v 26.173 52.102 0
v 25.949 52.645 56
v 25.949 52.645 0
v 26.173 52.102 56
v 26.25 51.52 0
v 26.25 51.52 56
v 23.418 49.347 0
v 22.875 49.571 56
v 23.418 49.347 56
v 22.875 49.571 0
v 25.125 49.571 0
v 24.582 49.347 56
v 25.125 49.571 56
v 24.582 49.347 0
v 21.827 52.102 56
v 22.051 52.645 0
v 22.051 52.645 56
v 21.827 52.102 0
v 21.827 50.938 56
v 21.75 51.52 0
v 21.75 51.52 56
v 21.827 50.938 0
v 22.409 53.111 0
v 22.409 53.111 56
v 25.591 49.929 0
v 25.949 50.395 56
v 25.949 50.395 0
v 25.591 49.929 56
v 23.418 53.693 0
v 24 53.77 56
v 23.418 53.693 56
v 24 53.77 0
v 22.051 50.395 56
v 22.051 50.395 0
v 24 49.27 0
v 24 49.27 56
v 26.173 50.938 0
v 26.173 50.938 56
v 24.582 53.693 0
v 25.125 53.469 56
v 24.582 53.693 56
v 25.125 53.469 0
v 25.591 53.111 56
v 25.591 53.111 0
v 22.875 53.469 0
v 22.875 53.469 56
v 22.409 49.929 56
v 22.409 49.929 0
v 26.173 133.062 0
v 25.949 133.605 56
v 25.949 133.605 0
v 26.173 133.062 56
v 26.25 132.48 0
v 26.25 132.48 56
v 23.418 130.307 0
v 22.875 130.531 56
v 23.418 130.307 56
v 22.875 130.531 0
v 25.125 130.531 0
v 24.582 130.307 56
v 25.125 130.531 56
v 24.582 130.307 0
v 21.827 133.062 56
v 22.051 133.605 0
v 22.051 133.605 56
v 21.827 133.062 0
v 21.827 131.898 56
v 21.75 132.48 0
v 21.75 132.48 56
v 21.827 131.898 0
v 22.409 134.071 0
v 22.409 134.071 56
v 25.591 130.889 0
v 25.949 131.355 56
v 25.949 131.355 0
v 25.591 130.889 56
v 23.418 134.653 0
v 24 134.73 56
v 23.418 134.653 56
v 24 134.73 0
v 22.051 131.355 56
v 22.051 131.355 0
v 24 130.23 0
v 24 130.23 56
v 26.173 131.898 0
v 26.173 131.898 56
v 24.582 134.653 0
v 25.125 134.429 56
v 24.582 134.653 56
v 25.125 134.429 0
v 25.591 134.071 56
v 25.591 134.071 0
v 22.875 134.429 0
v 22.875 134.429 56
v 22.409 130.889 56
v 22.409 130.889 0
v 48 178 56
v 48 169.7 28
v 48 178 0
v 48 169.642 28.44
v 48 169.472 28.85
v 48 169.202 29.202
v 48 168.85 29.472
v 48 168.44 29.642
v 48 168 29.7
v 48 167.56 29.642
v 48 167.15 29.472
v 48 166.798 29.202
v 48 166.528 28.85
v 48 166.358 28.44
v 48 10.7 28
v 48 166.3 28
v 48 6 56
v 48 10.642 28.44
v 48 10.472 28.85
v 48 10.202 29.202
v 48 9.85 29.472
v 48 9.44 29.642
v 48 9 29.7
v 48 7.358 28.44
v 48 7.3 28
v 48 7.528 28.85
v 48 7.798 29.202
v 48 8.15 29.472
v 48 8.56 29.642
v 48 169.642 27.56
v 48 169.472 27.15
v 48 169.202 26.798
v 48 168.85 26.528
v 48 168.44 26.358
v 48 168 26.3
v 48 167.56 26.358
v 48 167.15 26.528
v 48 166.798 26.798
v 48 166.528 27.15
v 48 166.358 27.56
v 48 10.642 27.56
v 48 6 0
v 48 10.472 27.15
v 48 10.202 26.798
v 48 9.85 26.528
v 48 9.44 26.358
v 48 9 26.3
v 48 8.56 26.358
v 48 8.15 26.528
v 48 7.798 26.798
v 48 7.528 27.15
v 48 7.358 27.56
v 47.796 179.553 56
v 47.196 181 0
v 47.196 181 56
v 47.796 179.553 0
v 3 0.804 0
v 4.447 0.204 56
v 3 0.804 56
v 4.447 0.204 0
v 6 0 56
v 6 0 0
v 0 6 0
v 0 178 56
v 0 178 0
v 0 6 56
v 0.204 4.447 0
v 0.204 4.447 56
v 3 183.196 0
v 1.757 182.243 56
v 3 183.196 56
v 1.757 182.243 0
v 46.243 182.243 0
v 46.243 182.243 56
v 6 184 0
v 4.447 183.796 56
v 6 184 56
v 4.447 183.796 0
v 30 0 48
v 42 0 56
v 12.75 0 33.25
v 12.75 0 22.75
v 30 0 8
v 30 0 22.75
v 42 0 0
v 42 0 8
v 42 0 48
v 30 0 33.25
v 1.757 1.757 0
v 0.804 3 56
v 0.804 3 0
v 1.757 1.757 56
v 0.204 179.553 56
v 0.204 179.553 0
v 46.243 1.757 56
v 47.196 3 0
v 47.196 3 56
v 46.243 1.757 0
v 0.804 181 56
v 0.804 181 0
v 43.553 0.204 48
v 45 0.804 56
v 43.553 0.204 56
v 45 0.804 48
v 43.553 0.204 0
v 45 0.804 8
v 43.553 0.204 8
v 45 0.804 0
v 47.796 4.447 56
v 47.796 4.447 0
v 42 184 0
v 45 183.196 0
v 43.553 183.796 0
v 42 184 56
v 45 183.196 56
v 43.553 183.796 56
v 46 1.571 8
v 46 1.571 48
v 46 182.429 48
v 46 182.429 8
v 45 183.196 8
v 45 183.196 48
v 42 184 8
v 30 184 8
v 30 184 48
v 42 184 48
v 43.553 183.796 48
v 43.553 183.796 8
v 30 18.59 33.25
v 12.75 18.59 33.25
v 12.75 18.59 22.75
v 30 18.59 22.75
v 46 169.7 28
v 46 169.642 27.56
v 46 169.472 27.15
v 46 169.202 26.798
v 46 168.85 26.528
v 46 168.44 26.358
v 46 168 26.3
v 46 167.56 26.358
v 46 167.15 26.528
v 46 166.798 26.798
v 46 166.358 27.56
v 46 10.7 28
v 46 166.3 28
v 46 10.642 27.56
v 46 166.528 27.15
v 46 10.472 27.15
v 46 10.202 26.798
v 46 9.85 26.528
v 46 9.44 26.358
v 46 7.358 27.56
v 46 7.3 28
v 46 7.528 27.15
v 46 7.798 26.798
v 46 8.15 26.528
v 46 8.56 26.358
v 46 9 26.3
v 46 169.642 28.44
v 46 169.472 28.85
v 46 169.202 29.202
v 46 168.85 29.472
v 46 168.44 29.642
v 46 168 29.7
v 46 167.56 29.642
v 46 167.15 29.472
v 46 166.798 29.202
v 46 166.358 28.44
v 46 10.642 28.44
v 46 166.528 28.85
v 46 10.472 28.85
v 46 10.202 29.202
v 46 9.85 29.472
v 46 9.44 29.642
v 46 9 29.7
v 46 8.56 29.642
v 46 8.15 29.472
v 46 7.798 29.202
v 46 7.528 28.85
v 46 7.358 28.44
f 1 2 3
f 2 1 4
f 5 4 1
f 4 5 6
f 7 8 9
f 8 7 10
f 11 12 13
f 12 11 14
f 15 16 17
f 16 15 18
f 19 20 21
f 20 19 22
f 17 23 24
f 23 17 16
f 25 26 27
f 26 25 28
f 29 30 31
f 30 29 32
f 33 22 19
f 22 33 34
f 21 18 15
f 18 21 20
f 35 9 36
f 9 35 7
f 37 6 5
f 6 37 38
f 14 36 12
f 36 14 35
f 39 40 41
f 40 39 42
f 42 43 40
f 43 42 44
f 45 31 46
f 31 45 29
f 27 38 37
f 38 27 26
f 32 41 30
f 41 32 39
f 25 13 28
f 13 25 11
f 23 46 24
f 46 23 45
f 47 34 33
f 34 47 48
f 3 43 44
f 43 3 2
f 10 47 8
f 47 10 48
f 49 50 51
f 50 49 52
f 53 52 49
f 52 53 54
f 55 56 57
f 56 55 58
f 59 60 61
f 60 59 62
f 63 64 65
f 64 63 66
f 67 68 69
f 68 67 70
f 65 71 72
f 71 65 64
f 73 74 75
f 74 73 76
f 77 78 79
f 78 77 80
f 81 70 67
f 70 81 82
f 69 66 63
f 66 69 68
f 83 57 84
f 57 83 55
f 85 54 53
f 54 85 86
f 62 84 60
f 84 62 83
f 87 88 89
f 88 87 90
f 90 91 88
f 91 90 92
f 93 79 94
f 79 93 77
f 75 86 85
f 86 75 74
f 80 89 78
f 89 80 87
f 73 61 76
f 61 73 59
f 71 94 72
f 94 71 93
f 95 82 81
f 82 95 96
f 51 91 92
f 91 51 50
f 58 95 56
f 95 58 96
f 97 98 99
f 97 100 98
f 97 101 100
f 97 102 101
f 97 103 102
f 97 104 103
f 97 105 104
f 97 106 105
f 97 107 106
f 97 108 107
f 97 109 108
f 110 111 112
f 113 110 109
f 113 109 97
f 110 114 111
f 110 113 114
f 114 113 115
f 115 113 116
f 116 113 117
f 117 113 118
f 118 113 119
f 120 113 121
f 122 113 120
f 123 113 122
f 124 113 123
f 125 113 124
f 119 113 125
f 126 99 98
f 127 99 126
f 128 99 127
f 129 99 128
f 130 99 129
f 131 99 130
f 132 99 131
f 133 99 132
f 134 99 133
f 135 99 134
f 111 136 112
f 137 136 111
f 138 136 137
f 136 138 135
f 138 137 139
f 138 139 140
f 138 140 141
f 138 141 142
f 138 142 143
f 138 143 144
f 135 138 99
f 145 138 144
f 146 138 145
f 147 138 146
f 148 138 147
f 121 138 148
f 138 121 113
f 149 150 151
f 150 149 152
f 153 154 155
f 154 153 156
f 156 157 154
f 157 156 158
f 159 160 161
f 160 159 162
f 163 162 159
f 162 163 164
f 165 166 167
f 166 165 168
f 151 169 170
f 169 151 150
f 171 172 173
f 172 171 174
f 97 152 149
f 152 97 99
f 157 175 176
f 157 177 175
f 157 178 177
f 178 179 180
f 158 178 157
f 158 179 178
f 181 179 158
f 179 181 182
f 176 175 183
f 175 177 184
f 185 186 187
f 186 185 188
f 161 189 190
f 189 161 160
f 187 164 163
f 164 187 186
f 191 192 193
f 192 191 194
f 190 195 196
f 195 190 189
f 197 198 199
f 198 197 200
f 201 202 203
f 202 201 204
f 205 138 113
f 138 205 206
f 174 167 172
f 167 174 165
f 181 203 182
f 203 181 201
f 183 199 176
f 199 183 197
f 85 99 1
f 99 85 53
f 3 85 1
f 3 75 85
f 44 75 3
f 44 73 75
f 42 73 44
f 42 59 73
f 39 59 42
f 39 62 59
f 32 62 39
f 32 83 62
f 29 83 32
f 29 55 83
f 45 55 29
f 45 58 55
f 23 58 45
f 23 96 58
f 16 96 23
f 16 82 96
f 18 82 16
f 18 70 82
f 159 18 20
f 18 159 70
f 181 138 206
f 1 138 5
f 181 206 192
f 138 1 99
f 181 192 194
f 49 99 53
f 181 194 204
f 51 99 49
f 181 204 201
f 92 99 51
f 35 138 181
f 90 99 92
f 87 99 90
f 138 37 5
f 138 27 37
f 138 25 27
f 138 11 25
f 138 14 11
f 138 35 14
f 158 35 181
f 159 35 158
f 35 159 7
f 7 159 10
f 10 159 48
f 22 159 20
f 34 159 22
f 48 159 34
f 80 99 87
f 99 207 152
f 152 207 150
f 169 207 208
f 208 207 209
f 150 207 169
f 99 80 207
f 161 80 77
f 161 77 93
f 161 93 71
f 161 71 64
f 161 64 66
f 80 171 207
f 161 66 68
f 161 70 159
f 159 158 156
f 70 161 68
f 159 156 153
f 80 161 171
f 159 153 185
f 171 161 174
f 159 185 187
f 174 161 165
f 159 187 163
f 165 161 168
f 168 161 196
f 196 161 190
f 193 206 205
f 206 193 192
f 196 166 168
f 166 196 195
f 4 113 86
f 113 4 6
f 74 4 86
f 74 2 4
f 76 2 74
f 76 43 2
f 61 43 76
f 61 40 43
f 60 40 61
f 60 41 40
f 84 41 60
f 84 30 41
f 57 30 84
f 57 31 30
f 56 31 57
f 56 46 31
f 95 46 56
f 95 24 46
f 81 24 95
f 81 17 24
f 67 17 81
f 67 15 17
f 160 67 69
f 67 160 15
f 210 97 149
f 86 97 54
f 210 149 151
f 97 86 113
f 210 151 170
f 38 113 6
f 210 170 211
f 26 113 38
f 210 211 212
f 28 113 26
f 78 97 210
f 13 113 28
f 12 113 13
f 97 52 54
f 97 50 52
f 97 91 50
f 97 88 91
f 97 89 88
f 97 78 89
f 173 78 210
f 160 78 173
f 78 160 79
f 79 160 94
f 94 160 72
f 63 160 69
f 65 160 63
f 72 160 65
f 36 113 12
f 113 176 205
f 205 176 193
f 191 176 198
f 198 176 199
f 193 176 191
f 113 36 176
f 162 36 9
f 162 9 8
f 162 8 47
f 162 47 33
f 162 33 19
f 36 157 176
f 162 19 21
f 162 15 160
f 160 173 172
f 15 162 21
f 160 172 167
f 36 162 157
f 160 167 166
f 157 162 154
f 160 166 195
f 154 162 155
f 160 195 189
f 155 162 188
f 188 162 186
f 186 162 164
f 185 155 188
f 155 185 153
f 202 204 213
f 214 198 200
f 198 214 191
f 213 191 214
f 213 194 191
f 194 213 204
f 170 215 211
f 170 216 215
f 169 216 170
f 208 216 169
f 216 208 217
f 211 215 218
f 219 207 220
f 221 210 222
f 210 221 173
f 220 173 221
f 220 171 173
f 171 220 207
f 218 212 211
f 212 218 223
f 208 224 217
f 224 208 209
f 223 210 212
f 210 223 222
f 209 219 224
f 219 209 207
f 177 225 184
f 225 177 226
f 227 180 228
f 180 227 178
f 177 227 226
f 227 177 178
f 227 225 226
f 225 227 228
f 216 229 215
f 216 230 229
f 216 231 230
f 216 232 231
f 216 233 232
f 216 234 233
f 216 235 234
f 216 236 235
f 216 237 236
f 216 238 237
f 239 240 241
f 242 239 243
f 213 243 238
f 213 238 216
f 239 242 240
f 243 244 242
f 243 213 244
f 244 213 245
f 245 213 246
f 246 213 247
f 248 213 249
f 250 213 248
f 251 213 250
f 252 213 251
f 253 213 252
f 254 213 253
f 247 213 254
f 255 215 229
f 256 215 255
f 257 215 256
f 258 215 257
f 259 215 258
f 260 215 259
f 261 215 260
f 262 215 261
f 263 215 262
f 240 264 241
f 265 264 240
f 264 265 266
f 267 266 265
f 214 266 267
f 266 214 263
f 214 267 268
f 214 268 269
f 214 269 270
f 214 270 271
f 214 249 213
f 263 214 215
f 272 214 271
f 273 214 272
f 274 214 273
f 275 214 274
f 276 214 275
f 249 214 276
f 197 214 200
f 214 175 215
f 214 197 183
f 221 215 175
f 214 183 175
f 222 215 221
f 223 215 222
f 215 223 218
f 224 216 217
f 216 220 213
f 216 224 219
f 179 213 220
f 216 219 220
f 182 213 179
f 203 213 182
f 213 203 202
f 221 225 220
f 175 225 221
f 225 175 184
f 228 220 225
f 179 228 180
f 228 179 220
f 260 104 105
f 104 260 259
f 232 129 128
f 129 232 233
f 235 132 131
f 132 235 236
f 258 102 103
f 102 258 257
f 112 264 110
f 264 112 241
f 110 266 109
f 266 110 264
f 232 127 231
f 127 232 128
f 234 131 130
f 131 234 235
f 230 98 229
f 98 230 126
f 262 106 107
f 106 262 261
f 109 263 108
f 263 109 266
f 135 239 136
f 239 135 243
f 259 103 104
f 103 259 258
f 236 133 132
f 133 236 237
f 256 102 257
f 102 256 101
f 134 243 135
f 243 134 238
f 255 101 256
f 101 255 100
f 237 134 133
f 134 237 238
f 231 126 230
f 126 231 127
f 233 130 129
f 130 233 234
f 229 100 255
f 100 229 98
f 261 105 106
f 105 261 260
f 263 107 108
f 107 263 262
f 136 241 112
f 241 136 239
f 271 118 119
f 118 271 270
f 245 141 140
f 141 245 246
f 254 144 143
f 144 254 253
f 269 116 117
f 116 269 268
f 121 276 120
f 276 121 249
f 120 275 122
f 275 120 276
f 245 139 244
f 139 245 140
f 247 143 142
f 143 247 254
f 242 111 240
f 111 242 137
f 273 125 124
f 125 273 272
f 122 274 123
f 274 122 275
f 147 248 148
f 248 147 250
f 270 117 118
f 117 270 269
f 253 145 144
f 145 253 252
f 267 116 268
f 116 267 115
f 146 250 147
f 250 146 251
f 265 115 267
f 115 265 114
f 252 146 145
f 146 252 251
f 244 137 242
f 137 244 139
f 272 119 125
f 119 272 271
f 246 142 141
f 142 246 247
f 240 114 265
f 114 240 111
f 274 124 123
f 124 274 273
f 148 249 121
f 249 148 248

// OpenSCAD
// file: 00_parameters.scad
// TenderCells DoorCell V1 shared parameters
// Units: millimeters

overall_w = 438;
overall_h = 368;
frame_depth = 56;

clear_w = 242;
clear_h = 312;

rail_thick = 32;
jamb_w = 48;
motor_jamb_w = 78;

// Printability targets
target_bed_xy = 220;
comfortable_part_max = 180;

// Modular frame split dimensions
top_seg_len = overall_w / 3;
bottom_seg_len = overall_w / 3;
left_jamb_seg_h = overall_h / 2;
right_lower_h = 118;
right_motor_h = 156;
right_upper_h = overall_h - right_lower_h - right_motor_h;

// Low-cost electronics envelope used by DoorCell V1.4.
// These dimensions are based on common generic modules, not a custom PCB.
esp32_board = [58, 31, 8];
drv8871_board = [31, 26, 7];
current_sensor_board = [26, 22, 7];
lm2596_board = [44, 22, 14];
inline_fuse_body = [45, 15, 14];
cn3065_board = [44, 24, 8];
electronics_clearance = 1.5;
controller_wall = 3;
controller_box_w = 170;
controller_box_h = 115;
controller_box_d = 46;
controller_lid_insert_offset = 11;
controller_m12_gland_d = 12.8;
controller_m10_gland_d = 10.6;
controller_m8_gland_d = 8.4;
controller_button_d = 16.2;

// Brass heat-set/push-in insert features.
insert_post_d = 8.0;
insert_post_h = 8.0;
insert_pilot_d = 4.6;
insert_pilot_depth = 6.5;
hold_down_screw_clearance = 3.4;

// Motor envelope for common 25GA/JGA25-370 gearmotors with optional encoder.
motor_body_d = 25.0;
motor_body_clearance_d = 27.2;
motor_body_len = 65;
motor_encoder_clearance = 16;
motor_mount_plate = [72, 92, 12];
motor_mount_cradle = [54, 74, 28];

// Optional solar add-on.
solar_panel_w = 145;
solar_panel_h = 145;
solar_panel_t = 4.0;
solar_panel_frame_border = 10;
solar_panel_frame_w = solar_panel_w + 2*solar_panel_frame_border;
solar_panel_frame_h = solar_panel_h + 2*solar_panel_frame_border;
solar_panel_back_depth = 14;
solar_panel_lip_overlap = 3;
solar_ball_d = 22;
solar_ball_socket_clearance = 0.45;
solar_mount_m5 = 5.4;

// Tongue-and-groove frame joints
// Fit target: common FDM printers with PETG/ASA.
// Clearance is per side, so sockets add 2x this value.
tongue_len = 18;
tongue_w = 22;
tongue_z = 10;
tongue_clearance_side = 0.25;
tongue_socket_depth_extra = 0.60;

door_w = 270;
door_h = 326;
door_t = 8;

track_gap = 11;
track_depth = 12;

// Rack-and-pinion drive
// Metric module gear math:
// circular_pitch = PI * module
// pitch_diameter = module * tooth_count
// outside_diameter = module * (tooth_count + 2)
// root_diameter = module * (tooth_count - 2.5)
gear_module = 2.0;
pressure_angle = 20;
gear_backlash = 0.20; // mm removed from rack tooth thickness at pitch line

pinion_teeth = 16;
pinion_pitch_d = gear_module * pinion_teeth;
pinion_pitch_radius = pinion_pitch_d / 2;
pinion_outer_d = gear_module * (pinion_teeth + 2);
pinion_outer_radius = pinion_outer_d / 2;
pinion_root_d = gear_module * (pinion_teeth - 2.5);
pinion_root_radius = pinion_root_d / 2;
pinion_thick = 12;
shaft_d = 6.2;

rack_tooth_count = 15;
rack_circular_pitch = 3.141592653589793 * gear_module;
rack_len = rack_circular_pitch * rack_tooth_count;
rack_w = 18;
rack_t = 6;
rack_addendum = gear_module;
rack_dedendum = 1.25 * gear_module;
rack_tooth_h = rack_addendum + rack_dedendum;
rack_pitch_line_z = rack_dedendum;
rack_tooth_pitch_thickness = rack_circular_pitch / 2 - gear_backlash;
rack_tooth_top_w = rack_tooth_pitch_thickness - 2 * rack_addendum * tan(pressure_angle);
rack_tooth_root_w = rack_tooth_pitch_thickness + 2 * rack_dedendum * tan(pressure_angle);

screw_m3 = 3.4;
screw_m4 = 4.5;
insert_m3 = 4.6;

eps = 0.01;

module rounded_box(size=[10,10,10], r=2) {
  hull() {
    translate([r,r,0]) cylinder(h=size[2], r=r, $fn=24);
    translate([size[0]-r,r,0]) cylinder(h=size[2], r=r, $fn=24);
    translate([r,size[1]-r,0]) cylinder(h=size[2], r=r, $fn=24);
    translate([size[0]-r,size[1]-r,0]) cylinder(h=size[2], r=r, $fn=24);
  }
}

module m3_clearance_hole(h=20) {
  cylinder(h=h, d=screw_m3, $fn=24);
}

module m4_clearance_hole(h=20) {
  cylinder(h=h, d=screw_m4, $fn=24);
}

module heat_insert_hole(h=6) {
  cylinder(h=h, d=insert_m3, $fn=24);
}

module heat_insert_post(h=insert_post_h, d=insert_post_d) {
  difference() {
    cylinder(h=h, d=d, $fn=32);
    translate([0,0,h-insert_pilot_depth+eps])
      cylinder(h=insert_pilot_depth+eps, d=insert_pilot_d, $fn=24);
  }
}

module m3_hold_down_slot(length=10, h=4) {
  hull() {
    translate([-length/2,0,0]) cylinder(h=h, d=hold_down_screw_clearance, $fn=20);
    translate([ length/2,0,0]) cylinder(h=h, d=hold_down_screw_clearance, $fn=20);
  }
}

module rail_channel(length=100) {
  cube([length, track_gap, track_depth]);
}

module frame_tongue_x() {
  rounded_box([tongue_len, tongue_w, tongue_z], r=1.5);
}

module frame_socket_x() {
  cube([
    tongue_len + tongue_socket_depth_extra,
    tongue_w + 2*tongue_clearance_side,
    tongue_z + 2*tongue_clearance_side
  ]);
}

module frame_tongue_y() {
  rounded_box([tongue_w, tongue_len, tongue_z], r=1.5);
}

module frame_socket_y() {
  cube([
    tongue_w + 2*tongue_clearance_side,
    tongue_len + tongue_socket_depth_extra,
    tongue_z + 2*tongue_clearance_side
  ]);
}

module rack_teeth(len=rack_len) {
  teeth = floor(len / rack_circular_pitch);
  for (i=[0:teeth-1]) {
    center = i*rack_circular_pitch + rack_circular_pitch/2;
    translate([0, 0, rack_t-0.20])
      linear_extrude(height=rack_w)
        polygon(points=[
          [center - rack_tooth_root_w/2, 0],
          [center + rack_tooth_root_w/2, 0],
          [center + rack_tooth_top_w/2, rack_tooth_h],
          [center - rack_tooth_top_w/2, rack_tooth_h]
        ]);
  }
}

function polar_point(r, a) = [r * cos(a), r * sin(a)];
// file: frame_modular_common.scad
include <00_parameters.scad>

module horizontal_frame_segment(seg_len=top_seg_len, rail_kind="top", joint_left="socket", joint_right="tongue") {
  difference() {
    union() {
      rounded_box([seg_len, rail_thick, frame_depth], r=6);

      if (joint_right == "tongue") {
        translate([seg_len - eps, rail_thick/2 - tongue_w/2, frame_depth/2 - tongue_z/2])
          frame_tongue_x();
      }
    }

    // Tongue receiver from previous segment.
    if (joint_left == "socket") {
      translate([
        -eps,
        rail_thick/2 - (tongue_w + 2*tongue_clearance_side)/2,
        frame_depth/2 - (tongue_z + 2*tongue_clearance_side)/2
      ])
        frame_socket_x();
    }

    // Sliding door guide channel.
    if (rail_kind == "top") {
      translate([8, rail_thick-track_gap-5, 8])
        rail_channel(length=seg_len-16);
    } else {
      translate([8, 5, frame_depth-track_depth-8])
        rail_channel(length=seg_len-16);

      // Drain slots for bottom rail.
      for (x=[seg_len*0.25, seg_len*0.5, seg_len*0.75]) {
        translate([x-10, rail_thick/2-2, frame_depth-4])
          cube([20, 4, 10]);
      }
    }

    // Coop mounting holes.
    for (x=[18, seg_len-18]) {
      translate([x, rail_thick/2, -eps])
        m4_clearance_hole(h=frame_depth+2);
    }

    // Cross-bolt holes near frame split joints.
    if (joint_left == "socket") {
      translate([tongue_len/2, rail_thick/2, frame_depth/2])
        rotate([90,0,0]) m3_clearance_hole(h=rail_thick+2);
    }
    if (joint_right == "tongue") {
      translate([seg_len + tongue_len/2 - 2, rail_thick/2, frame_depth/2])
        rotate([90,0,0]) m3_clearance_hole(h=rail_thick+2);
    }
  }
}

module left_jamb_segment(seg_h=left_jamb_seg_h, joint_bottom="socket", joint_top="tongue", corner_bottom=false, corner_top=false) {
  difference() {
    union() {
      rounded_box([jamb_w, seg_h, frame_depth], r=6);

      if (joint_top == "tongue") {
        translate([jamb_w/2 - tongue_w/2, seg_h - eps, frame_depth/2 - tongue_z/2])
          frame_tongue_y();
      }
    }

    if (joint_bottom == "socket") {
      translate([
        jamb_w/2 - (tongue_w + 2*tongue_clearance_side)/2,
        -eps,
        frame_depth/2 - (tongue_z + 2*tongue_clearance_side)/2
      ])
        frame_socket_y();
    }

    // Door pocket relief.
    translate([jamb_w-18, 0, 8])
      cube([16, seg_h, frame_depth-16]);

    // Coop mounting holes.
    for (y=[seg_h*0.28, seg_h*0.72]) {
      translate([jamb_w/2, y, -eps]) m4_clearance_hole(h=frame_depth+2);
    }

    // Rail-to-jamb corner holes.
    if (corner_bottom) {
      translate([jamb_w-10, 16, frame_depth/2])
        rotate([0,90,0]) m3_clearance_hole(h=20);
    }
    if (corner_top) {
      translate([jamb_w-10, seg_h-16, frame_depth/2])
        rotate([0,90,0]) m3_clearance_hole(h=20);
    }

    // Cross-bolt through tongue-and-groove.
    if (joint_bottom == "socket") {
      translate([jamb_w/2, tongue_len/2, frame_depth/2])
        rotate([0,90,0]) m3_clearance_hole(h=jamb_w+2);
    }
    if (joint_top == "tongue") {
      translate([jamb_w/2, seg_h + tongue_len/2 - 2, frame_depth/2])
        rotate([0,90,0]) m3_clearance_hole(h=jamb_w+2);
    }
  }
}

module right_jamb_segment(seg_h=120, has_motor_bay=false, joint_bottom="socket", joint_top="tongue", corner_bottom=false, corner_top=false) {
  difference() {
    union() {
      rounded_box([motor_jamb_w, seg_h, frame_depth], r=6);

      if (has_motor_bay) {
        translate([motor_jamb_w-8, 20, 0])
          rounded_box([70, seg_h-32, frame_depth], r=5);
      }

      if (joint_top == "tongue") {
        translate([motor_jamb_w/2 - tongue_w/2, seg_h - eps, frame_depth/2 - tongue_z/2])
          frame_tongue_y();
      }
    }

    if (joint_bottom == "socket") {
      translate([
        motor_jamb_w/2 - (tongue_w + 2*tongue_clearance_side)/2,
        -eps,
        frame_depth/2 - (tongue_z + 2*tongue_clearance_side)/2
      ])
        frame_socket_y();
    }

    // Door pocket relief.
    translate([0, 0, 8])
      cube([20, seg_h, frame_depth-16]);

    if (has_motor_bay) {
      // Motor cassette pocket sized for the revised 25GA mount.
      translate([motor_jamb_w+5, 33, 8])
        cube([62, 92, 40]);

      // Pinion/rack engagement window.
      translate([4, 68, 16])
        cube([46, 36, 24]);

      // Motor/control harness pass-through for M12-style cable gland routing.
      translate([motor_jamb_w+26, seg_h-42, 16])
        cube([24, 34, 26]);

      // Limit switch lead pass-throughs.
      translate([motor_jamb_w-2, 18, 18])
        cube([16, 18, 16]);
      translate([motor_jamb_w-2, seg_h-36, 18])
        cube([16, 18, 16]);
    }

    // Coop mounting holes.
    for (y=[seg_h*0.28, seg_h*0.72]) {
      translate([motor_jamb_w/2, y, -eps]) m4_clearance_hole(h=frame_depth+2);
    }

    // Rail-to-jamb corner holes.
    if (corner_bottom) {
      translate([10, 16, frame_depth/2])
        rotate([0,90,0]) m3_clearance_hole(h=20);
    }
    if (corner_top) {
      translate([10, seg_h-16, frame_depth/2])
        rotate([0,90,0]) m3_clearance_hole(h=20);
    }

    // Cross-bolt through tongue-and-groove.
    if (joint_bottom == "socket") {
      translate([motor_jamb_w/2, tongue_len/2, frame_depth/2])
        rotate([0,90,0]) m3_clearance_hole(h=motor_jamb_w+2);
    }
    if (joint_top == "tongue") {
      translate([motor_jamb_w/2, seg_h + tongue_len/2 - 2, frame_depth/2])
        rotate([0,90,0]) m3_clearance_hole(h=motor_jamb_w+2);
    }
  }
}
// main file
include <frame_modular_common.scad>

left_jamb_segment(seg_h=left_jamb_seg_h, joint_bottom="socket", joint_top="none", corner_bottom=false, corner_top=true);
